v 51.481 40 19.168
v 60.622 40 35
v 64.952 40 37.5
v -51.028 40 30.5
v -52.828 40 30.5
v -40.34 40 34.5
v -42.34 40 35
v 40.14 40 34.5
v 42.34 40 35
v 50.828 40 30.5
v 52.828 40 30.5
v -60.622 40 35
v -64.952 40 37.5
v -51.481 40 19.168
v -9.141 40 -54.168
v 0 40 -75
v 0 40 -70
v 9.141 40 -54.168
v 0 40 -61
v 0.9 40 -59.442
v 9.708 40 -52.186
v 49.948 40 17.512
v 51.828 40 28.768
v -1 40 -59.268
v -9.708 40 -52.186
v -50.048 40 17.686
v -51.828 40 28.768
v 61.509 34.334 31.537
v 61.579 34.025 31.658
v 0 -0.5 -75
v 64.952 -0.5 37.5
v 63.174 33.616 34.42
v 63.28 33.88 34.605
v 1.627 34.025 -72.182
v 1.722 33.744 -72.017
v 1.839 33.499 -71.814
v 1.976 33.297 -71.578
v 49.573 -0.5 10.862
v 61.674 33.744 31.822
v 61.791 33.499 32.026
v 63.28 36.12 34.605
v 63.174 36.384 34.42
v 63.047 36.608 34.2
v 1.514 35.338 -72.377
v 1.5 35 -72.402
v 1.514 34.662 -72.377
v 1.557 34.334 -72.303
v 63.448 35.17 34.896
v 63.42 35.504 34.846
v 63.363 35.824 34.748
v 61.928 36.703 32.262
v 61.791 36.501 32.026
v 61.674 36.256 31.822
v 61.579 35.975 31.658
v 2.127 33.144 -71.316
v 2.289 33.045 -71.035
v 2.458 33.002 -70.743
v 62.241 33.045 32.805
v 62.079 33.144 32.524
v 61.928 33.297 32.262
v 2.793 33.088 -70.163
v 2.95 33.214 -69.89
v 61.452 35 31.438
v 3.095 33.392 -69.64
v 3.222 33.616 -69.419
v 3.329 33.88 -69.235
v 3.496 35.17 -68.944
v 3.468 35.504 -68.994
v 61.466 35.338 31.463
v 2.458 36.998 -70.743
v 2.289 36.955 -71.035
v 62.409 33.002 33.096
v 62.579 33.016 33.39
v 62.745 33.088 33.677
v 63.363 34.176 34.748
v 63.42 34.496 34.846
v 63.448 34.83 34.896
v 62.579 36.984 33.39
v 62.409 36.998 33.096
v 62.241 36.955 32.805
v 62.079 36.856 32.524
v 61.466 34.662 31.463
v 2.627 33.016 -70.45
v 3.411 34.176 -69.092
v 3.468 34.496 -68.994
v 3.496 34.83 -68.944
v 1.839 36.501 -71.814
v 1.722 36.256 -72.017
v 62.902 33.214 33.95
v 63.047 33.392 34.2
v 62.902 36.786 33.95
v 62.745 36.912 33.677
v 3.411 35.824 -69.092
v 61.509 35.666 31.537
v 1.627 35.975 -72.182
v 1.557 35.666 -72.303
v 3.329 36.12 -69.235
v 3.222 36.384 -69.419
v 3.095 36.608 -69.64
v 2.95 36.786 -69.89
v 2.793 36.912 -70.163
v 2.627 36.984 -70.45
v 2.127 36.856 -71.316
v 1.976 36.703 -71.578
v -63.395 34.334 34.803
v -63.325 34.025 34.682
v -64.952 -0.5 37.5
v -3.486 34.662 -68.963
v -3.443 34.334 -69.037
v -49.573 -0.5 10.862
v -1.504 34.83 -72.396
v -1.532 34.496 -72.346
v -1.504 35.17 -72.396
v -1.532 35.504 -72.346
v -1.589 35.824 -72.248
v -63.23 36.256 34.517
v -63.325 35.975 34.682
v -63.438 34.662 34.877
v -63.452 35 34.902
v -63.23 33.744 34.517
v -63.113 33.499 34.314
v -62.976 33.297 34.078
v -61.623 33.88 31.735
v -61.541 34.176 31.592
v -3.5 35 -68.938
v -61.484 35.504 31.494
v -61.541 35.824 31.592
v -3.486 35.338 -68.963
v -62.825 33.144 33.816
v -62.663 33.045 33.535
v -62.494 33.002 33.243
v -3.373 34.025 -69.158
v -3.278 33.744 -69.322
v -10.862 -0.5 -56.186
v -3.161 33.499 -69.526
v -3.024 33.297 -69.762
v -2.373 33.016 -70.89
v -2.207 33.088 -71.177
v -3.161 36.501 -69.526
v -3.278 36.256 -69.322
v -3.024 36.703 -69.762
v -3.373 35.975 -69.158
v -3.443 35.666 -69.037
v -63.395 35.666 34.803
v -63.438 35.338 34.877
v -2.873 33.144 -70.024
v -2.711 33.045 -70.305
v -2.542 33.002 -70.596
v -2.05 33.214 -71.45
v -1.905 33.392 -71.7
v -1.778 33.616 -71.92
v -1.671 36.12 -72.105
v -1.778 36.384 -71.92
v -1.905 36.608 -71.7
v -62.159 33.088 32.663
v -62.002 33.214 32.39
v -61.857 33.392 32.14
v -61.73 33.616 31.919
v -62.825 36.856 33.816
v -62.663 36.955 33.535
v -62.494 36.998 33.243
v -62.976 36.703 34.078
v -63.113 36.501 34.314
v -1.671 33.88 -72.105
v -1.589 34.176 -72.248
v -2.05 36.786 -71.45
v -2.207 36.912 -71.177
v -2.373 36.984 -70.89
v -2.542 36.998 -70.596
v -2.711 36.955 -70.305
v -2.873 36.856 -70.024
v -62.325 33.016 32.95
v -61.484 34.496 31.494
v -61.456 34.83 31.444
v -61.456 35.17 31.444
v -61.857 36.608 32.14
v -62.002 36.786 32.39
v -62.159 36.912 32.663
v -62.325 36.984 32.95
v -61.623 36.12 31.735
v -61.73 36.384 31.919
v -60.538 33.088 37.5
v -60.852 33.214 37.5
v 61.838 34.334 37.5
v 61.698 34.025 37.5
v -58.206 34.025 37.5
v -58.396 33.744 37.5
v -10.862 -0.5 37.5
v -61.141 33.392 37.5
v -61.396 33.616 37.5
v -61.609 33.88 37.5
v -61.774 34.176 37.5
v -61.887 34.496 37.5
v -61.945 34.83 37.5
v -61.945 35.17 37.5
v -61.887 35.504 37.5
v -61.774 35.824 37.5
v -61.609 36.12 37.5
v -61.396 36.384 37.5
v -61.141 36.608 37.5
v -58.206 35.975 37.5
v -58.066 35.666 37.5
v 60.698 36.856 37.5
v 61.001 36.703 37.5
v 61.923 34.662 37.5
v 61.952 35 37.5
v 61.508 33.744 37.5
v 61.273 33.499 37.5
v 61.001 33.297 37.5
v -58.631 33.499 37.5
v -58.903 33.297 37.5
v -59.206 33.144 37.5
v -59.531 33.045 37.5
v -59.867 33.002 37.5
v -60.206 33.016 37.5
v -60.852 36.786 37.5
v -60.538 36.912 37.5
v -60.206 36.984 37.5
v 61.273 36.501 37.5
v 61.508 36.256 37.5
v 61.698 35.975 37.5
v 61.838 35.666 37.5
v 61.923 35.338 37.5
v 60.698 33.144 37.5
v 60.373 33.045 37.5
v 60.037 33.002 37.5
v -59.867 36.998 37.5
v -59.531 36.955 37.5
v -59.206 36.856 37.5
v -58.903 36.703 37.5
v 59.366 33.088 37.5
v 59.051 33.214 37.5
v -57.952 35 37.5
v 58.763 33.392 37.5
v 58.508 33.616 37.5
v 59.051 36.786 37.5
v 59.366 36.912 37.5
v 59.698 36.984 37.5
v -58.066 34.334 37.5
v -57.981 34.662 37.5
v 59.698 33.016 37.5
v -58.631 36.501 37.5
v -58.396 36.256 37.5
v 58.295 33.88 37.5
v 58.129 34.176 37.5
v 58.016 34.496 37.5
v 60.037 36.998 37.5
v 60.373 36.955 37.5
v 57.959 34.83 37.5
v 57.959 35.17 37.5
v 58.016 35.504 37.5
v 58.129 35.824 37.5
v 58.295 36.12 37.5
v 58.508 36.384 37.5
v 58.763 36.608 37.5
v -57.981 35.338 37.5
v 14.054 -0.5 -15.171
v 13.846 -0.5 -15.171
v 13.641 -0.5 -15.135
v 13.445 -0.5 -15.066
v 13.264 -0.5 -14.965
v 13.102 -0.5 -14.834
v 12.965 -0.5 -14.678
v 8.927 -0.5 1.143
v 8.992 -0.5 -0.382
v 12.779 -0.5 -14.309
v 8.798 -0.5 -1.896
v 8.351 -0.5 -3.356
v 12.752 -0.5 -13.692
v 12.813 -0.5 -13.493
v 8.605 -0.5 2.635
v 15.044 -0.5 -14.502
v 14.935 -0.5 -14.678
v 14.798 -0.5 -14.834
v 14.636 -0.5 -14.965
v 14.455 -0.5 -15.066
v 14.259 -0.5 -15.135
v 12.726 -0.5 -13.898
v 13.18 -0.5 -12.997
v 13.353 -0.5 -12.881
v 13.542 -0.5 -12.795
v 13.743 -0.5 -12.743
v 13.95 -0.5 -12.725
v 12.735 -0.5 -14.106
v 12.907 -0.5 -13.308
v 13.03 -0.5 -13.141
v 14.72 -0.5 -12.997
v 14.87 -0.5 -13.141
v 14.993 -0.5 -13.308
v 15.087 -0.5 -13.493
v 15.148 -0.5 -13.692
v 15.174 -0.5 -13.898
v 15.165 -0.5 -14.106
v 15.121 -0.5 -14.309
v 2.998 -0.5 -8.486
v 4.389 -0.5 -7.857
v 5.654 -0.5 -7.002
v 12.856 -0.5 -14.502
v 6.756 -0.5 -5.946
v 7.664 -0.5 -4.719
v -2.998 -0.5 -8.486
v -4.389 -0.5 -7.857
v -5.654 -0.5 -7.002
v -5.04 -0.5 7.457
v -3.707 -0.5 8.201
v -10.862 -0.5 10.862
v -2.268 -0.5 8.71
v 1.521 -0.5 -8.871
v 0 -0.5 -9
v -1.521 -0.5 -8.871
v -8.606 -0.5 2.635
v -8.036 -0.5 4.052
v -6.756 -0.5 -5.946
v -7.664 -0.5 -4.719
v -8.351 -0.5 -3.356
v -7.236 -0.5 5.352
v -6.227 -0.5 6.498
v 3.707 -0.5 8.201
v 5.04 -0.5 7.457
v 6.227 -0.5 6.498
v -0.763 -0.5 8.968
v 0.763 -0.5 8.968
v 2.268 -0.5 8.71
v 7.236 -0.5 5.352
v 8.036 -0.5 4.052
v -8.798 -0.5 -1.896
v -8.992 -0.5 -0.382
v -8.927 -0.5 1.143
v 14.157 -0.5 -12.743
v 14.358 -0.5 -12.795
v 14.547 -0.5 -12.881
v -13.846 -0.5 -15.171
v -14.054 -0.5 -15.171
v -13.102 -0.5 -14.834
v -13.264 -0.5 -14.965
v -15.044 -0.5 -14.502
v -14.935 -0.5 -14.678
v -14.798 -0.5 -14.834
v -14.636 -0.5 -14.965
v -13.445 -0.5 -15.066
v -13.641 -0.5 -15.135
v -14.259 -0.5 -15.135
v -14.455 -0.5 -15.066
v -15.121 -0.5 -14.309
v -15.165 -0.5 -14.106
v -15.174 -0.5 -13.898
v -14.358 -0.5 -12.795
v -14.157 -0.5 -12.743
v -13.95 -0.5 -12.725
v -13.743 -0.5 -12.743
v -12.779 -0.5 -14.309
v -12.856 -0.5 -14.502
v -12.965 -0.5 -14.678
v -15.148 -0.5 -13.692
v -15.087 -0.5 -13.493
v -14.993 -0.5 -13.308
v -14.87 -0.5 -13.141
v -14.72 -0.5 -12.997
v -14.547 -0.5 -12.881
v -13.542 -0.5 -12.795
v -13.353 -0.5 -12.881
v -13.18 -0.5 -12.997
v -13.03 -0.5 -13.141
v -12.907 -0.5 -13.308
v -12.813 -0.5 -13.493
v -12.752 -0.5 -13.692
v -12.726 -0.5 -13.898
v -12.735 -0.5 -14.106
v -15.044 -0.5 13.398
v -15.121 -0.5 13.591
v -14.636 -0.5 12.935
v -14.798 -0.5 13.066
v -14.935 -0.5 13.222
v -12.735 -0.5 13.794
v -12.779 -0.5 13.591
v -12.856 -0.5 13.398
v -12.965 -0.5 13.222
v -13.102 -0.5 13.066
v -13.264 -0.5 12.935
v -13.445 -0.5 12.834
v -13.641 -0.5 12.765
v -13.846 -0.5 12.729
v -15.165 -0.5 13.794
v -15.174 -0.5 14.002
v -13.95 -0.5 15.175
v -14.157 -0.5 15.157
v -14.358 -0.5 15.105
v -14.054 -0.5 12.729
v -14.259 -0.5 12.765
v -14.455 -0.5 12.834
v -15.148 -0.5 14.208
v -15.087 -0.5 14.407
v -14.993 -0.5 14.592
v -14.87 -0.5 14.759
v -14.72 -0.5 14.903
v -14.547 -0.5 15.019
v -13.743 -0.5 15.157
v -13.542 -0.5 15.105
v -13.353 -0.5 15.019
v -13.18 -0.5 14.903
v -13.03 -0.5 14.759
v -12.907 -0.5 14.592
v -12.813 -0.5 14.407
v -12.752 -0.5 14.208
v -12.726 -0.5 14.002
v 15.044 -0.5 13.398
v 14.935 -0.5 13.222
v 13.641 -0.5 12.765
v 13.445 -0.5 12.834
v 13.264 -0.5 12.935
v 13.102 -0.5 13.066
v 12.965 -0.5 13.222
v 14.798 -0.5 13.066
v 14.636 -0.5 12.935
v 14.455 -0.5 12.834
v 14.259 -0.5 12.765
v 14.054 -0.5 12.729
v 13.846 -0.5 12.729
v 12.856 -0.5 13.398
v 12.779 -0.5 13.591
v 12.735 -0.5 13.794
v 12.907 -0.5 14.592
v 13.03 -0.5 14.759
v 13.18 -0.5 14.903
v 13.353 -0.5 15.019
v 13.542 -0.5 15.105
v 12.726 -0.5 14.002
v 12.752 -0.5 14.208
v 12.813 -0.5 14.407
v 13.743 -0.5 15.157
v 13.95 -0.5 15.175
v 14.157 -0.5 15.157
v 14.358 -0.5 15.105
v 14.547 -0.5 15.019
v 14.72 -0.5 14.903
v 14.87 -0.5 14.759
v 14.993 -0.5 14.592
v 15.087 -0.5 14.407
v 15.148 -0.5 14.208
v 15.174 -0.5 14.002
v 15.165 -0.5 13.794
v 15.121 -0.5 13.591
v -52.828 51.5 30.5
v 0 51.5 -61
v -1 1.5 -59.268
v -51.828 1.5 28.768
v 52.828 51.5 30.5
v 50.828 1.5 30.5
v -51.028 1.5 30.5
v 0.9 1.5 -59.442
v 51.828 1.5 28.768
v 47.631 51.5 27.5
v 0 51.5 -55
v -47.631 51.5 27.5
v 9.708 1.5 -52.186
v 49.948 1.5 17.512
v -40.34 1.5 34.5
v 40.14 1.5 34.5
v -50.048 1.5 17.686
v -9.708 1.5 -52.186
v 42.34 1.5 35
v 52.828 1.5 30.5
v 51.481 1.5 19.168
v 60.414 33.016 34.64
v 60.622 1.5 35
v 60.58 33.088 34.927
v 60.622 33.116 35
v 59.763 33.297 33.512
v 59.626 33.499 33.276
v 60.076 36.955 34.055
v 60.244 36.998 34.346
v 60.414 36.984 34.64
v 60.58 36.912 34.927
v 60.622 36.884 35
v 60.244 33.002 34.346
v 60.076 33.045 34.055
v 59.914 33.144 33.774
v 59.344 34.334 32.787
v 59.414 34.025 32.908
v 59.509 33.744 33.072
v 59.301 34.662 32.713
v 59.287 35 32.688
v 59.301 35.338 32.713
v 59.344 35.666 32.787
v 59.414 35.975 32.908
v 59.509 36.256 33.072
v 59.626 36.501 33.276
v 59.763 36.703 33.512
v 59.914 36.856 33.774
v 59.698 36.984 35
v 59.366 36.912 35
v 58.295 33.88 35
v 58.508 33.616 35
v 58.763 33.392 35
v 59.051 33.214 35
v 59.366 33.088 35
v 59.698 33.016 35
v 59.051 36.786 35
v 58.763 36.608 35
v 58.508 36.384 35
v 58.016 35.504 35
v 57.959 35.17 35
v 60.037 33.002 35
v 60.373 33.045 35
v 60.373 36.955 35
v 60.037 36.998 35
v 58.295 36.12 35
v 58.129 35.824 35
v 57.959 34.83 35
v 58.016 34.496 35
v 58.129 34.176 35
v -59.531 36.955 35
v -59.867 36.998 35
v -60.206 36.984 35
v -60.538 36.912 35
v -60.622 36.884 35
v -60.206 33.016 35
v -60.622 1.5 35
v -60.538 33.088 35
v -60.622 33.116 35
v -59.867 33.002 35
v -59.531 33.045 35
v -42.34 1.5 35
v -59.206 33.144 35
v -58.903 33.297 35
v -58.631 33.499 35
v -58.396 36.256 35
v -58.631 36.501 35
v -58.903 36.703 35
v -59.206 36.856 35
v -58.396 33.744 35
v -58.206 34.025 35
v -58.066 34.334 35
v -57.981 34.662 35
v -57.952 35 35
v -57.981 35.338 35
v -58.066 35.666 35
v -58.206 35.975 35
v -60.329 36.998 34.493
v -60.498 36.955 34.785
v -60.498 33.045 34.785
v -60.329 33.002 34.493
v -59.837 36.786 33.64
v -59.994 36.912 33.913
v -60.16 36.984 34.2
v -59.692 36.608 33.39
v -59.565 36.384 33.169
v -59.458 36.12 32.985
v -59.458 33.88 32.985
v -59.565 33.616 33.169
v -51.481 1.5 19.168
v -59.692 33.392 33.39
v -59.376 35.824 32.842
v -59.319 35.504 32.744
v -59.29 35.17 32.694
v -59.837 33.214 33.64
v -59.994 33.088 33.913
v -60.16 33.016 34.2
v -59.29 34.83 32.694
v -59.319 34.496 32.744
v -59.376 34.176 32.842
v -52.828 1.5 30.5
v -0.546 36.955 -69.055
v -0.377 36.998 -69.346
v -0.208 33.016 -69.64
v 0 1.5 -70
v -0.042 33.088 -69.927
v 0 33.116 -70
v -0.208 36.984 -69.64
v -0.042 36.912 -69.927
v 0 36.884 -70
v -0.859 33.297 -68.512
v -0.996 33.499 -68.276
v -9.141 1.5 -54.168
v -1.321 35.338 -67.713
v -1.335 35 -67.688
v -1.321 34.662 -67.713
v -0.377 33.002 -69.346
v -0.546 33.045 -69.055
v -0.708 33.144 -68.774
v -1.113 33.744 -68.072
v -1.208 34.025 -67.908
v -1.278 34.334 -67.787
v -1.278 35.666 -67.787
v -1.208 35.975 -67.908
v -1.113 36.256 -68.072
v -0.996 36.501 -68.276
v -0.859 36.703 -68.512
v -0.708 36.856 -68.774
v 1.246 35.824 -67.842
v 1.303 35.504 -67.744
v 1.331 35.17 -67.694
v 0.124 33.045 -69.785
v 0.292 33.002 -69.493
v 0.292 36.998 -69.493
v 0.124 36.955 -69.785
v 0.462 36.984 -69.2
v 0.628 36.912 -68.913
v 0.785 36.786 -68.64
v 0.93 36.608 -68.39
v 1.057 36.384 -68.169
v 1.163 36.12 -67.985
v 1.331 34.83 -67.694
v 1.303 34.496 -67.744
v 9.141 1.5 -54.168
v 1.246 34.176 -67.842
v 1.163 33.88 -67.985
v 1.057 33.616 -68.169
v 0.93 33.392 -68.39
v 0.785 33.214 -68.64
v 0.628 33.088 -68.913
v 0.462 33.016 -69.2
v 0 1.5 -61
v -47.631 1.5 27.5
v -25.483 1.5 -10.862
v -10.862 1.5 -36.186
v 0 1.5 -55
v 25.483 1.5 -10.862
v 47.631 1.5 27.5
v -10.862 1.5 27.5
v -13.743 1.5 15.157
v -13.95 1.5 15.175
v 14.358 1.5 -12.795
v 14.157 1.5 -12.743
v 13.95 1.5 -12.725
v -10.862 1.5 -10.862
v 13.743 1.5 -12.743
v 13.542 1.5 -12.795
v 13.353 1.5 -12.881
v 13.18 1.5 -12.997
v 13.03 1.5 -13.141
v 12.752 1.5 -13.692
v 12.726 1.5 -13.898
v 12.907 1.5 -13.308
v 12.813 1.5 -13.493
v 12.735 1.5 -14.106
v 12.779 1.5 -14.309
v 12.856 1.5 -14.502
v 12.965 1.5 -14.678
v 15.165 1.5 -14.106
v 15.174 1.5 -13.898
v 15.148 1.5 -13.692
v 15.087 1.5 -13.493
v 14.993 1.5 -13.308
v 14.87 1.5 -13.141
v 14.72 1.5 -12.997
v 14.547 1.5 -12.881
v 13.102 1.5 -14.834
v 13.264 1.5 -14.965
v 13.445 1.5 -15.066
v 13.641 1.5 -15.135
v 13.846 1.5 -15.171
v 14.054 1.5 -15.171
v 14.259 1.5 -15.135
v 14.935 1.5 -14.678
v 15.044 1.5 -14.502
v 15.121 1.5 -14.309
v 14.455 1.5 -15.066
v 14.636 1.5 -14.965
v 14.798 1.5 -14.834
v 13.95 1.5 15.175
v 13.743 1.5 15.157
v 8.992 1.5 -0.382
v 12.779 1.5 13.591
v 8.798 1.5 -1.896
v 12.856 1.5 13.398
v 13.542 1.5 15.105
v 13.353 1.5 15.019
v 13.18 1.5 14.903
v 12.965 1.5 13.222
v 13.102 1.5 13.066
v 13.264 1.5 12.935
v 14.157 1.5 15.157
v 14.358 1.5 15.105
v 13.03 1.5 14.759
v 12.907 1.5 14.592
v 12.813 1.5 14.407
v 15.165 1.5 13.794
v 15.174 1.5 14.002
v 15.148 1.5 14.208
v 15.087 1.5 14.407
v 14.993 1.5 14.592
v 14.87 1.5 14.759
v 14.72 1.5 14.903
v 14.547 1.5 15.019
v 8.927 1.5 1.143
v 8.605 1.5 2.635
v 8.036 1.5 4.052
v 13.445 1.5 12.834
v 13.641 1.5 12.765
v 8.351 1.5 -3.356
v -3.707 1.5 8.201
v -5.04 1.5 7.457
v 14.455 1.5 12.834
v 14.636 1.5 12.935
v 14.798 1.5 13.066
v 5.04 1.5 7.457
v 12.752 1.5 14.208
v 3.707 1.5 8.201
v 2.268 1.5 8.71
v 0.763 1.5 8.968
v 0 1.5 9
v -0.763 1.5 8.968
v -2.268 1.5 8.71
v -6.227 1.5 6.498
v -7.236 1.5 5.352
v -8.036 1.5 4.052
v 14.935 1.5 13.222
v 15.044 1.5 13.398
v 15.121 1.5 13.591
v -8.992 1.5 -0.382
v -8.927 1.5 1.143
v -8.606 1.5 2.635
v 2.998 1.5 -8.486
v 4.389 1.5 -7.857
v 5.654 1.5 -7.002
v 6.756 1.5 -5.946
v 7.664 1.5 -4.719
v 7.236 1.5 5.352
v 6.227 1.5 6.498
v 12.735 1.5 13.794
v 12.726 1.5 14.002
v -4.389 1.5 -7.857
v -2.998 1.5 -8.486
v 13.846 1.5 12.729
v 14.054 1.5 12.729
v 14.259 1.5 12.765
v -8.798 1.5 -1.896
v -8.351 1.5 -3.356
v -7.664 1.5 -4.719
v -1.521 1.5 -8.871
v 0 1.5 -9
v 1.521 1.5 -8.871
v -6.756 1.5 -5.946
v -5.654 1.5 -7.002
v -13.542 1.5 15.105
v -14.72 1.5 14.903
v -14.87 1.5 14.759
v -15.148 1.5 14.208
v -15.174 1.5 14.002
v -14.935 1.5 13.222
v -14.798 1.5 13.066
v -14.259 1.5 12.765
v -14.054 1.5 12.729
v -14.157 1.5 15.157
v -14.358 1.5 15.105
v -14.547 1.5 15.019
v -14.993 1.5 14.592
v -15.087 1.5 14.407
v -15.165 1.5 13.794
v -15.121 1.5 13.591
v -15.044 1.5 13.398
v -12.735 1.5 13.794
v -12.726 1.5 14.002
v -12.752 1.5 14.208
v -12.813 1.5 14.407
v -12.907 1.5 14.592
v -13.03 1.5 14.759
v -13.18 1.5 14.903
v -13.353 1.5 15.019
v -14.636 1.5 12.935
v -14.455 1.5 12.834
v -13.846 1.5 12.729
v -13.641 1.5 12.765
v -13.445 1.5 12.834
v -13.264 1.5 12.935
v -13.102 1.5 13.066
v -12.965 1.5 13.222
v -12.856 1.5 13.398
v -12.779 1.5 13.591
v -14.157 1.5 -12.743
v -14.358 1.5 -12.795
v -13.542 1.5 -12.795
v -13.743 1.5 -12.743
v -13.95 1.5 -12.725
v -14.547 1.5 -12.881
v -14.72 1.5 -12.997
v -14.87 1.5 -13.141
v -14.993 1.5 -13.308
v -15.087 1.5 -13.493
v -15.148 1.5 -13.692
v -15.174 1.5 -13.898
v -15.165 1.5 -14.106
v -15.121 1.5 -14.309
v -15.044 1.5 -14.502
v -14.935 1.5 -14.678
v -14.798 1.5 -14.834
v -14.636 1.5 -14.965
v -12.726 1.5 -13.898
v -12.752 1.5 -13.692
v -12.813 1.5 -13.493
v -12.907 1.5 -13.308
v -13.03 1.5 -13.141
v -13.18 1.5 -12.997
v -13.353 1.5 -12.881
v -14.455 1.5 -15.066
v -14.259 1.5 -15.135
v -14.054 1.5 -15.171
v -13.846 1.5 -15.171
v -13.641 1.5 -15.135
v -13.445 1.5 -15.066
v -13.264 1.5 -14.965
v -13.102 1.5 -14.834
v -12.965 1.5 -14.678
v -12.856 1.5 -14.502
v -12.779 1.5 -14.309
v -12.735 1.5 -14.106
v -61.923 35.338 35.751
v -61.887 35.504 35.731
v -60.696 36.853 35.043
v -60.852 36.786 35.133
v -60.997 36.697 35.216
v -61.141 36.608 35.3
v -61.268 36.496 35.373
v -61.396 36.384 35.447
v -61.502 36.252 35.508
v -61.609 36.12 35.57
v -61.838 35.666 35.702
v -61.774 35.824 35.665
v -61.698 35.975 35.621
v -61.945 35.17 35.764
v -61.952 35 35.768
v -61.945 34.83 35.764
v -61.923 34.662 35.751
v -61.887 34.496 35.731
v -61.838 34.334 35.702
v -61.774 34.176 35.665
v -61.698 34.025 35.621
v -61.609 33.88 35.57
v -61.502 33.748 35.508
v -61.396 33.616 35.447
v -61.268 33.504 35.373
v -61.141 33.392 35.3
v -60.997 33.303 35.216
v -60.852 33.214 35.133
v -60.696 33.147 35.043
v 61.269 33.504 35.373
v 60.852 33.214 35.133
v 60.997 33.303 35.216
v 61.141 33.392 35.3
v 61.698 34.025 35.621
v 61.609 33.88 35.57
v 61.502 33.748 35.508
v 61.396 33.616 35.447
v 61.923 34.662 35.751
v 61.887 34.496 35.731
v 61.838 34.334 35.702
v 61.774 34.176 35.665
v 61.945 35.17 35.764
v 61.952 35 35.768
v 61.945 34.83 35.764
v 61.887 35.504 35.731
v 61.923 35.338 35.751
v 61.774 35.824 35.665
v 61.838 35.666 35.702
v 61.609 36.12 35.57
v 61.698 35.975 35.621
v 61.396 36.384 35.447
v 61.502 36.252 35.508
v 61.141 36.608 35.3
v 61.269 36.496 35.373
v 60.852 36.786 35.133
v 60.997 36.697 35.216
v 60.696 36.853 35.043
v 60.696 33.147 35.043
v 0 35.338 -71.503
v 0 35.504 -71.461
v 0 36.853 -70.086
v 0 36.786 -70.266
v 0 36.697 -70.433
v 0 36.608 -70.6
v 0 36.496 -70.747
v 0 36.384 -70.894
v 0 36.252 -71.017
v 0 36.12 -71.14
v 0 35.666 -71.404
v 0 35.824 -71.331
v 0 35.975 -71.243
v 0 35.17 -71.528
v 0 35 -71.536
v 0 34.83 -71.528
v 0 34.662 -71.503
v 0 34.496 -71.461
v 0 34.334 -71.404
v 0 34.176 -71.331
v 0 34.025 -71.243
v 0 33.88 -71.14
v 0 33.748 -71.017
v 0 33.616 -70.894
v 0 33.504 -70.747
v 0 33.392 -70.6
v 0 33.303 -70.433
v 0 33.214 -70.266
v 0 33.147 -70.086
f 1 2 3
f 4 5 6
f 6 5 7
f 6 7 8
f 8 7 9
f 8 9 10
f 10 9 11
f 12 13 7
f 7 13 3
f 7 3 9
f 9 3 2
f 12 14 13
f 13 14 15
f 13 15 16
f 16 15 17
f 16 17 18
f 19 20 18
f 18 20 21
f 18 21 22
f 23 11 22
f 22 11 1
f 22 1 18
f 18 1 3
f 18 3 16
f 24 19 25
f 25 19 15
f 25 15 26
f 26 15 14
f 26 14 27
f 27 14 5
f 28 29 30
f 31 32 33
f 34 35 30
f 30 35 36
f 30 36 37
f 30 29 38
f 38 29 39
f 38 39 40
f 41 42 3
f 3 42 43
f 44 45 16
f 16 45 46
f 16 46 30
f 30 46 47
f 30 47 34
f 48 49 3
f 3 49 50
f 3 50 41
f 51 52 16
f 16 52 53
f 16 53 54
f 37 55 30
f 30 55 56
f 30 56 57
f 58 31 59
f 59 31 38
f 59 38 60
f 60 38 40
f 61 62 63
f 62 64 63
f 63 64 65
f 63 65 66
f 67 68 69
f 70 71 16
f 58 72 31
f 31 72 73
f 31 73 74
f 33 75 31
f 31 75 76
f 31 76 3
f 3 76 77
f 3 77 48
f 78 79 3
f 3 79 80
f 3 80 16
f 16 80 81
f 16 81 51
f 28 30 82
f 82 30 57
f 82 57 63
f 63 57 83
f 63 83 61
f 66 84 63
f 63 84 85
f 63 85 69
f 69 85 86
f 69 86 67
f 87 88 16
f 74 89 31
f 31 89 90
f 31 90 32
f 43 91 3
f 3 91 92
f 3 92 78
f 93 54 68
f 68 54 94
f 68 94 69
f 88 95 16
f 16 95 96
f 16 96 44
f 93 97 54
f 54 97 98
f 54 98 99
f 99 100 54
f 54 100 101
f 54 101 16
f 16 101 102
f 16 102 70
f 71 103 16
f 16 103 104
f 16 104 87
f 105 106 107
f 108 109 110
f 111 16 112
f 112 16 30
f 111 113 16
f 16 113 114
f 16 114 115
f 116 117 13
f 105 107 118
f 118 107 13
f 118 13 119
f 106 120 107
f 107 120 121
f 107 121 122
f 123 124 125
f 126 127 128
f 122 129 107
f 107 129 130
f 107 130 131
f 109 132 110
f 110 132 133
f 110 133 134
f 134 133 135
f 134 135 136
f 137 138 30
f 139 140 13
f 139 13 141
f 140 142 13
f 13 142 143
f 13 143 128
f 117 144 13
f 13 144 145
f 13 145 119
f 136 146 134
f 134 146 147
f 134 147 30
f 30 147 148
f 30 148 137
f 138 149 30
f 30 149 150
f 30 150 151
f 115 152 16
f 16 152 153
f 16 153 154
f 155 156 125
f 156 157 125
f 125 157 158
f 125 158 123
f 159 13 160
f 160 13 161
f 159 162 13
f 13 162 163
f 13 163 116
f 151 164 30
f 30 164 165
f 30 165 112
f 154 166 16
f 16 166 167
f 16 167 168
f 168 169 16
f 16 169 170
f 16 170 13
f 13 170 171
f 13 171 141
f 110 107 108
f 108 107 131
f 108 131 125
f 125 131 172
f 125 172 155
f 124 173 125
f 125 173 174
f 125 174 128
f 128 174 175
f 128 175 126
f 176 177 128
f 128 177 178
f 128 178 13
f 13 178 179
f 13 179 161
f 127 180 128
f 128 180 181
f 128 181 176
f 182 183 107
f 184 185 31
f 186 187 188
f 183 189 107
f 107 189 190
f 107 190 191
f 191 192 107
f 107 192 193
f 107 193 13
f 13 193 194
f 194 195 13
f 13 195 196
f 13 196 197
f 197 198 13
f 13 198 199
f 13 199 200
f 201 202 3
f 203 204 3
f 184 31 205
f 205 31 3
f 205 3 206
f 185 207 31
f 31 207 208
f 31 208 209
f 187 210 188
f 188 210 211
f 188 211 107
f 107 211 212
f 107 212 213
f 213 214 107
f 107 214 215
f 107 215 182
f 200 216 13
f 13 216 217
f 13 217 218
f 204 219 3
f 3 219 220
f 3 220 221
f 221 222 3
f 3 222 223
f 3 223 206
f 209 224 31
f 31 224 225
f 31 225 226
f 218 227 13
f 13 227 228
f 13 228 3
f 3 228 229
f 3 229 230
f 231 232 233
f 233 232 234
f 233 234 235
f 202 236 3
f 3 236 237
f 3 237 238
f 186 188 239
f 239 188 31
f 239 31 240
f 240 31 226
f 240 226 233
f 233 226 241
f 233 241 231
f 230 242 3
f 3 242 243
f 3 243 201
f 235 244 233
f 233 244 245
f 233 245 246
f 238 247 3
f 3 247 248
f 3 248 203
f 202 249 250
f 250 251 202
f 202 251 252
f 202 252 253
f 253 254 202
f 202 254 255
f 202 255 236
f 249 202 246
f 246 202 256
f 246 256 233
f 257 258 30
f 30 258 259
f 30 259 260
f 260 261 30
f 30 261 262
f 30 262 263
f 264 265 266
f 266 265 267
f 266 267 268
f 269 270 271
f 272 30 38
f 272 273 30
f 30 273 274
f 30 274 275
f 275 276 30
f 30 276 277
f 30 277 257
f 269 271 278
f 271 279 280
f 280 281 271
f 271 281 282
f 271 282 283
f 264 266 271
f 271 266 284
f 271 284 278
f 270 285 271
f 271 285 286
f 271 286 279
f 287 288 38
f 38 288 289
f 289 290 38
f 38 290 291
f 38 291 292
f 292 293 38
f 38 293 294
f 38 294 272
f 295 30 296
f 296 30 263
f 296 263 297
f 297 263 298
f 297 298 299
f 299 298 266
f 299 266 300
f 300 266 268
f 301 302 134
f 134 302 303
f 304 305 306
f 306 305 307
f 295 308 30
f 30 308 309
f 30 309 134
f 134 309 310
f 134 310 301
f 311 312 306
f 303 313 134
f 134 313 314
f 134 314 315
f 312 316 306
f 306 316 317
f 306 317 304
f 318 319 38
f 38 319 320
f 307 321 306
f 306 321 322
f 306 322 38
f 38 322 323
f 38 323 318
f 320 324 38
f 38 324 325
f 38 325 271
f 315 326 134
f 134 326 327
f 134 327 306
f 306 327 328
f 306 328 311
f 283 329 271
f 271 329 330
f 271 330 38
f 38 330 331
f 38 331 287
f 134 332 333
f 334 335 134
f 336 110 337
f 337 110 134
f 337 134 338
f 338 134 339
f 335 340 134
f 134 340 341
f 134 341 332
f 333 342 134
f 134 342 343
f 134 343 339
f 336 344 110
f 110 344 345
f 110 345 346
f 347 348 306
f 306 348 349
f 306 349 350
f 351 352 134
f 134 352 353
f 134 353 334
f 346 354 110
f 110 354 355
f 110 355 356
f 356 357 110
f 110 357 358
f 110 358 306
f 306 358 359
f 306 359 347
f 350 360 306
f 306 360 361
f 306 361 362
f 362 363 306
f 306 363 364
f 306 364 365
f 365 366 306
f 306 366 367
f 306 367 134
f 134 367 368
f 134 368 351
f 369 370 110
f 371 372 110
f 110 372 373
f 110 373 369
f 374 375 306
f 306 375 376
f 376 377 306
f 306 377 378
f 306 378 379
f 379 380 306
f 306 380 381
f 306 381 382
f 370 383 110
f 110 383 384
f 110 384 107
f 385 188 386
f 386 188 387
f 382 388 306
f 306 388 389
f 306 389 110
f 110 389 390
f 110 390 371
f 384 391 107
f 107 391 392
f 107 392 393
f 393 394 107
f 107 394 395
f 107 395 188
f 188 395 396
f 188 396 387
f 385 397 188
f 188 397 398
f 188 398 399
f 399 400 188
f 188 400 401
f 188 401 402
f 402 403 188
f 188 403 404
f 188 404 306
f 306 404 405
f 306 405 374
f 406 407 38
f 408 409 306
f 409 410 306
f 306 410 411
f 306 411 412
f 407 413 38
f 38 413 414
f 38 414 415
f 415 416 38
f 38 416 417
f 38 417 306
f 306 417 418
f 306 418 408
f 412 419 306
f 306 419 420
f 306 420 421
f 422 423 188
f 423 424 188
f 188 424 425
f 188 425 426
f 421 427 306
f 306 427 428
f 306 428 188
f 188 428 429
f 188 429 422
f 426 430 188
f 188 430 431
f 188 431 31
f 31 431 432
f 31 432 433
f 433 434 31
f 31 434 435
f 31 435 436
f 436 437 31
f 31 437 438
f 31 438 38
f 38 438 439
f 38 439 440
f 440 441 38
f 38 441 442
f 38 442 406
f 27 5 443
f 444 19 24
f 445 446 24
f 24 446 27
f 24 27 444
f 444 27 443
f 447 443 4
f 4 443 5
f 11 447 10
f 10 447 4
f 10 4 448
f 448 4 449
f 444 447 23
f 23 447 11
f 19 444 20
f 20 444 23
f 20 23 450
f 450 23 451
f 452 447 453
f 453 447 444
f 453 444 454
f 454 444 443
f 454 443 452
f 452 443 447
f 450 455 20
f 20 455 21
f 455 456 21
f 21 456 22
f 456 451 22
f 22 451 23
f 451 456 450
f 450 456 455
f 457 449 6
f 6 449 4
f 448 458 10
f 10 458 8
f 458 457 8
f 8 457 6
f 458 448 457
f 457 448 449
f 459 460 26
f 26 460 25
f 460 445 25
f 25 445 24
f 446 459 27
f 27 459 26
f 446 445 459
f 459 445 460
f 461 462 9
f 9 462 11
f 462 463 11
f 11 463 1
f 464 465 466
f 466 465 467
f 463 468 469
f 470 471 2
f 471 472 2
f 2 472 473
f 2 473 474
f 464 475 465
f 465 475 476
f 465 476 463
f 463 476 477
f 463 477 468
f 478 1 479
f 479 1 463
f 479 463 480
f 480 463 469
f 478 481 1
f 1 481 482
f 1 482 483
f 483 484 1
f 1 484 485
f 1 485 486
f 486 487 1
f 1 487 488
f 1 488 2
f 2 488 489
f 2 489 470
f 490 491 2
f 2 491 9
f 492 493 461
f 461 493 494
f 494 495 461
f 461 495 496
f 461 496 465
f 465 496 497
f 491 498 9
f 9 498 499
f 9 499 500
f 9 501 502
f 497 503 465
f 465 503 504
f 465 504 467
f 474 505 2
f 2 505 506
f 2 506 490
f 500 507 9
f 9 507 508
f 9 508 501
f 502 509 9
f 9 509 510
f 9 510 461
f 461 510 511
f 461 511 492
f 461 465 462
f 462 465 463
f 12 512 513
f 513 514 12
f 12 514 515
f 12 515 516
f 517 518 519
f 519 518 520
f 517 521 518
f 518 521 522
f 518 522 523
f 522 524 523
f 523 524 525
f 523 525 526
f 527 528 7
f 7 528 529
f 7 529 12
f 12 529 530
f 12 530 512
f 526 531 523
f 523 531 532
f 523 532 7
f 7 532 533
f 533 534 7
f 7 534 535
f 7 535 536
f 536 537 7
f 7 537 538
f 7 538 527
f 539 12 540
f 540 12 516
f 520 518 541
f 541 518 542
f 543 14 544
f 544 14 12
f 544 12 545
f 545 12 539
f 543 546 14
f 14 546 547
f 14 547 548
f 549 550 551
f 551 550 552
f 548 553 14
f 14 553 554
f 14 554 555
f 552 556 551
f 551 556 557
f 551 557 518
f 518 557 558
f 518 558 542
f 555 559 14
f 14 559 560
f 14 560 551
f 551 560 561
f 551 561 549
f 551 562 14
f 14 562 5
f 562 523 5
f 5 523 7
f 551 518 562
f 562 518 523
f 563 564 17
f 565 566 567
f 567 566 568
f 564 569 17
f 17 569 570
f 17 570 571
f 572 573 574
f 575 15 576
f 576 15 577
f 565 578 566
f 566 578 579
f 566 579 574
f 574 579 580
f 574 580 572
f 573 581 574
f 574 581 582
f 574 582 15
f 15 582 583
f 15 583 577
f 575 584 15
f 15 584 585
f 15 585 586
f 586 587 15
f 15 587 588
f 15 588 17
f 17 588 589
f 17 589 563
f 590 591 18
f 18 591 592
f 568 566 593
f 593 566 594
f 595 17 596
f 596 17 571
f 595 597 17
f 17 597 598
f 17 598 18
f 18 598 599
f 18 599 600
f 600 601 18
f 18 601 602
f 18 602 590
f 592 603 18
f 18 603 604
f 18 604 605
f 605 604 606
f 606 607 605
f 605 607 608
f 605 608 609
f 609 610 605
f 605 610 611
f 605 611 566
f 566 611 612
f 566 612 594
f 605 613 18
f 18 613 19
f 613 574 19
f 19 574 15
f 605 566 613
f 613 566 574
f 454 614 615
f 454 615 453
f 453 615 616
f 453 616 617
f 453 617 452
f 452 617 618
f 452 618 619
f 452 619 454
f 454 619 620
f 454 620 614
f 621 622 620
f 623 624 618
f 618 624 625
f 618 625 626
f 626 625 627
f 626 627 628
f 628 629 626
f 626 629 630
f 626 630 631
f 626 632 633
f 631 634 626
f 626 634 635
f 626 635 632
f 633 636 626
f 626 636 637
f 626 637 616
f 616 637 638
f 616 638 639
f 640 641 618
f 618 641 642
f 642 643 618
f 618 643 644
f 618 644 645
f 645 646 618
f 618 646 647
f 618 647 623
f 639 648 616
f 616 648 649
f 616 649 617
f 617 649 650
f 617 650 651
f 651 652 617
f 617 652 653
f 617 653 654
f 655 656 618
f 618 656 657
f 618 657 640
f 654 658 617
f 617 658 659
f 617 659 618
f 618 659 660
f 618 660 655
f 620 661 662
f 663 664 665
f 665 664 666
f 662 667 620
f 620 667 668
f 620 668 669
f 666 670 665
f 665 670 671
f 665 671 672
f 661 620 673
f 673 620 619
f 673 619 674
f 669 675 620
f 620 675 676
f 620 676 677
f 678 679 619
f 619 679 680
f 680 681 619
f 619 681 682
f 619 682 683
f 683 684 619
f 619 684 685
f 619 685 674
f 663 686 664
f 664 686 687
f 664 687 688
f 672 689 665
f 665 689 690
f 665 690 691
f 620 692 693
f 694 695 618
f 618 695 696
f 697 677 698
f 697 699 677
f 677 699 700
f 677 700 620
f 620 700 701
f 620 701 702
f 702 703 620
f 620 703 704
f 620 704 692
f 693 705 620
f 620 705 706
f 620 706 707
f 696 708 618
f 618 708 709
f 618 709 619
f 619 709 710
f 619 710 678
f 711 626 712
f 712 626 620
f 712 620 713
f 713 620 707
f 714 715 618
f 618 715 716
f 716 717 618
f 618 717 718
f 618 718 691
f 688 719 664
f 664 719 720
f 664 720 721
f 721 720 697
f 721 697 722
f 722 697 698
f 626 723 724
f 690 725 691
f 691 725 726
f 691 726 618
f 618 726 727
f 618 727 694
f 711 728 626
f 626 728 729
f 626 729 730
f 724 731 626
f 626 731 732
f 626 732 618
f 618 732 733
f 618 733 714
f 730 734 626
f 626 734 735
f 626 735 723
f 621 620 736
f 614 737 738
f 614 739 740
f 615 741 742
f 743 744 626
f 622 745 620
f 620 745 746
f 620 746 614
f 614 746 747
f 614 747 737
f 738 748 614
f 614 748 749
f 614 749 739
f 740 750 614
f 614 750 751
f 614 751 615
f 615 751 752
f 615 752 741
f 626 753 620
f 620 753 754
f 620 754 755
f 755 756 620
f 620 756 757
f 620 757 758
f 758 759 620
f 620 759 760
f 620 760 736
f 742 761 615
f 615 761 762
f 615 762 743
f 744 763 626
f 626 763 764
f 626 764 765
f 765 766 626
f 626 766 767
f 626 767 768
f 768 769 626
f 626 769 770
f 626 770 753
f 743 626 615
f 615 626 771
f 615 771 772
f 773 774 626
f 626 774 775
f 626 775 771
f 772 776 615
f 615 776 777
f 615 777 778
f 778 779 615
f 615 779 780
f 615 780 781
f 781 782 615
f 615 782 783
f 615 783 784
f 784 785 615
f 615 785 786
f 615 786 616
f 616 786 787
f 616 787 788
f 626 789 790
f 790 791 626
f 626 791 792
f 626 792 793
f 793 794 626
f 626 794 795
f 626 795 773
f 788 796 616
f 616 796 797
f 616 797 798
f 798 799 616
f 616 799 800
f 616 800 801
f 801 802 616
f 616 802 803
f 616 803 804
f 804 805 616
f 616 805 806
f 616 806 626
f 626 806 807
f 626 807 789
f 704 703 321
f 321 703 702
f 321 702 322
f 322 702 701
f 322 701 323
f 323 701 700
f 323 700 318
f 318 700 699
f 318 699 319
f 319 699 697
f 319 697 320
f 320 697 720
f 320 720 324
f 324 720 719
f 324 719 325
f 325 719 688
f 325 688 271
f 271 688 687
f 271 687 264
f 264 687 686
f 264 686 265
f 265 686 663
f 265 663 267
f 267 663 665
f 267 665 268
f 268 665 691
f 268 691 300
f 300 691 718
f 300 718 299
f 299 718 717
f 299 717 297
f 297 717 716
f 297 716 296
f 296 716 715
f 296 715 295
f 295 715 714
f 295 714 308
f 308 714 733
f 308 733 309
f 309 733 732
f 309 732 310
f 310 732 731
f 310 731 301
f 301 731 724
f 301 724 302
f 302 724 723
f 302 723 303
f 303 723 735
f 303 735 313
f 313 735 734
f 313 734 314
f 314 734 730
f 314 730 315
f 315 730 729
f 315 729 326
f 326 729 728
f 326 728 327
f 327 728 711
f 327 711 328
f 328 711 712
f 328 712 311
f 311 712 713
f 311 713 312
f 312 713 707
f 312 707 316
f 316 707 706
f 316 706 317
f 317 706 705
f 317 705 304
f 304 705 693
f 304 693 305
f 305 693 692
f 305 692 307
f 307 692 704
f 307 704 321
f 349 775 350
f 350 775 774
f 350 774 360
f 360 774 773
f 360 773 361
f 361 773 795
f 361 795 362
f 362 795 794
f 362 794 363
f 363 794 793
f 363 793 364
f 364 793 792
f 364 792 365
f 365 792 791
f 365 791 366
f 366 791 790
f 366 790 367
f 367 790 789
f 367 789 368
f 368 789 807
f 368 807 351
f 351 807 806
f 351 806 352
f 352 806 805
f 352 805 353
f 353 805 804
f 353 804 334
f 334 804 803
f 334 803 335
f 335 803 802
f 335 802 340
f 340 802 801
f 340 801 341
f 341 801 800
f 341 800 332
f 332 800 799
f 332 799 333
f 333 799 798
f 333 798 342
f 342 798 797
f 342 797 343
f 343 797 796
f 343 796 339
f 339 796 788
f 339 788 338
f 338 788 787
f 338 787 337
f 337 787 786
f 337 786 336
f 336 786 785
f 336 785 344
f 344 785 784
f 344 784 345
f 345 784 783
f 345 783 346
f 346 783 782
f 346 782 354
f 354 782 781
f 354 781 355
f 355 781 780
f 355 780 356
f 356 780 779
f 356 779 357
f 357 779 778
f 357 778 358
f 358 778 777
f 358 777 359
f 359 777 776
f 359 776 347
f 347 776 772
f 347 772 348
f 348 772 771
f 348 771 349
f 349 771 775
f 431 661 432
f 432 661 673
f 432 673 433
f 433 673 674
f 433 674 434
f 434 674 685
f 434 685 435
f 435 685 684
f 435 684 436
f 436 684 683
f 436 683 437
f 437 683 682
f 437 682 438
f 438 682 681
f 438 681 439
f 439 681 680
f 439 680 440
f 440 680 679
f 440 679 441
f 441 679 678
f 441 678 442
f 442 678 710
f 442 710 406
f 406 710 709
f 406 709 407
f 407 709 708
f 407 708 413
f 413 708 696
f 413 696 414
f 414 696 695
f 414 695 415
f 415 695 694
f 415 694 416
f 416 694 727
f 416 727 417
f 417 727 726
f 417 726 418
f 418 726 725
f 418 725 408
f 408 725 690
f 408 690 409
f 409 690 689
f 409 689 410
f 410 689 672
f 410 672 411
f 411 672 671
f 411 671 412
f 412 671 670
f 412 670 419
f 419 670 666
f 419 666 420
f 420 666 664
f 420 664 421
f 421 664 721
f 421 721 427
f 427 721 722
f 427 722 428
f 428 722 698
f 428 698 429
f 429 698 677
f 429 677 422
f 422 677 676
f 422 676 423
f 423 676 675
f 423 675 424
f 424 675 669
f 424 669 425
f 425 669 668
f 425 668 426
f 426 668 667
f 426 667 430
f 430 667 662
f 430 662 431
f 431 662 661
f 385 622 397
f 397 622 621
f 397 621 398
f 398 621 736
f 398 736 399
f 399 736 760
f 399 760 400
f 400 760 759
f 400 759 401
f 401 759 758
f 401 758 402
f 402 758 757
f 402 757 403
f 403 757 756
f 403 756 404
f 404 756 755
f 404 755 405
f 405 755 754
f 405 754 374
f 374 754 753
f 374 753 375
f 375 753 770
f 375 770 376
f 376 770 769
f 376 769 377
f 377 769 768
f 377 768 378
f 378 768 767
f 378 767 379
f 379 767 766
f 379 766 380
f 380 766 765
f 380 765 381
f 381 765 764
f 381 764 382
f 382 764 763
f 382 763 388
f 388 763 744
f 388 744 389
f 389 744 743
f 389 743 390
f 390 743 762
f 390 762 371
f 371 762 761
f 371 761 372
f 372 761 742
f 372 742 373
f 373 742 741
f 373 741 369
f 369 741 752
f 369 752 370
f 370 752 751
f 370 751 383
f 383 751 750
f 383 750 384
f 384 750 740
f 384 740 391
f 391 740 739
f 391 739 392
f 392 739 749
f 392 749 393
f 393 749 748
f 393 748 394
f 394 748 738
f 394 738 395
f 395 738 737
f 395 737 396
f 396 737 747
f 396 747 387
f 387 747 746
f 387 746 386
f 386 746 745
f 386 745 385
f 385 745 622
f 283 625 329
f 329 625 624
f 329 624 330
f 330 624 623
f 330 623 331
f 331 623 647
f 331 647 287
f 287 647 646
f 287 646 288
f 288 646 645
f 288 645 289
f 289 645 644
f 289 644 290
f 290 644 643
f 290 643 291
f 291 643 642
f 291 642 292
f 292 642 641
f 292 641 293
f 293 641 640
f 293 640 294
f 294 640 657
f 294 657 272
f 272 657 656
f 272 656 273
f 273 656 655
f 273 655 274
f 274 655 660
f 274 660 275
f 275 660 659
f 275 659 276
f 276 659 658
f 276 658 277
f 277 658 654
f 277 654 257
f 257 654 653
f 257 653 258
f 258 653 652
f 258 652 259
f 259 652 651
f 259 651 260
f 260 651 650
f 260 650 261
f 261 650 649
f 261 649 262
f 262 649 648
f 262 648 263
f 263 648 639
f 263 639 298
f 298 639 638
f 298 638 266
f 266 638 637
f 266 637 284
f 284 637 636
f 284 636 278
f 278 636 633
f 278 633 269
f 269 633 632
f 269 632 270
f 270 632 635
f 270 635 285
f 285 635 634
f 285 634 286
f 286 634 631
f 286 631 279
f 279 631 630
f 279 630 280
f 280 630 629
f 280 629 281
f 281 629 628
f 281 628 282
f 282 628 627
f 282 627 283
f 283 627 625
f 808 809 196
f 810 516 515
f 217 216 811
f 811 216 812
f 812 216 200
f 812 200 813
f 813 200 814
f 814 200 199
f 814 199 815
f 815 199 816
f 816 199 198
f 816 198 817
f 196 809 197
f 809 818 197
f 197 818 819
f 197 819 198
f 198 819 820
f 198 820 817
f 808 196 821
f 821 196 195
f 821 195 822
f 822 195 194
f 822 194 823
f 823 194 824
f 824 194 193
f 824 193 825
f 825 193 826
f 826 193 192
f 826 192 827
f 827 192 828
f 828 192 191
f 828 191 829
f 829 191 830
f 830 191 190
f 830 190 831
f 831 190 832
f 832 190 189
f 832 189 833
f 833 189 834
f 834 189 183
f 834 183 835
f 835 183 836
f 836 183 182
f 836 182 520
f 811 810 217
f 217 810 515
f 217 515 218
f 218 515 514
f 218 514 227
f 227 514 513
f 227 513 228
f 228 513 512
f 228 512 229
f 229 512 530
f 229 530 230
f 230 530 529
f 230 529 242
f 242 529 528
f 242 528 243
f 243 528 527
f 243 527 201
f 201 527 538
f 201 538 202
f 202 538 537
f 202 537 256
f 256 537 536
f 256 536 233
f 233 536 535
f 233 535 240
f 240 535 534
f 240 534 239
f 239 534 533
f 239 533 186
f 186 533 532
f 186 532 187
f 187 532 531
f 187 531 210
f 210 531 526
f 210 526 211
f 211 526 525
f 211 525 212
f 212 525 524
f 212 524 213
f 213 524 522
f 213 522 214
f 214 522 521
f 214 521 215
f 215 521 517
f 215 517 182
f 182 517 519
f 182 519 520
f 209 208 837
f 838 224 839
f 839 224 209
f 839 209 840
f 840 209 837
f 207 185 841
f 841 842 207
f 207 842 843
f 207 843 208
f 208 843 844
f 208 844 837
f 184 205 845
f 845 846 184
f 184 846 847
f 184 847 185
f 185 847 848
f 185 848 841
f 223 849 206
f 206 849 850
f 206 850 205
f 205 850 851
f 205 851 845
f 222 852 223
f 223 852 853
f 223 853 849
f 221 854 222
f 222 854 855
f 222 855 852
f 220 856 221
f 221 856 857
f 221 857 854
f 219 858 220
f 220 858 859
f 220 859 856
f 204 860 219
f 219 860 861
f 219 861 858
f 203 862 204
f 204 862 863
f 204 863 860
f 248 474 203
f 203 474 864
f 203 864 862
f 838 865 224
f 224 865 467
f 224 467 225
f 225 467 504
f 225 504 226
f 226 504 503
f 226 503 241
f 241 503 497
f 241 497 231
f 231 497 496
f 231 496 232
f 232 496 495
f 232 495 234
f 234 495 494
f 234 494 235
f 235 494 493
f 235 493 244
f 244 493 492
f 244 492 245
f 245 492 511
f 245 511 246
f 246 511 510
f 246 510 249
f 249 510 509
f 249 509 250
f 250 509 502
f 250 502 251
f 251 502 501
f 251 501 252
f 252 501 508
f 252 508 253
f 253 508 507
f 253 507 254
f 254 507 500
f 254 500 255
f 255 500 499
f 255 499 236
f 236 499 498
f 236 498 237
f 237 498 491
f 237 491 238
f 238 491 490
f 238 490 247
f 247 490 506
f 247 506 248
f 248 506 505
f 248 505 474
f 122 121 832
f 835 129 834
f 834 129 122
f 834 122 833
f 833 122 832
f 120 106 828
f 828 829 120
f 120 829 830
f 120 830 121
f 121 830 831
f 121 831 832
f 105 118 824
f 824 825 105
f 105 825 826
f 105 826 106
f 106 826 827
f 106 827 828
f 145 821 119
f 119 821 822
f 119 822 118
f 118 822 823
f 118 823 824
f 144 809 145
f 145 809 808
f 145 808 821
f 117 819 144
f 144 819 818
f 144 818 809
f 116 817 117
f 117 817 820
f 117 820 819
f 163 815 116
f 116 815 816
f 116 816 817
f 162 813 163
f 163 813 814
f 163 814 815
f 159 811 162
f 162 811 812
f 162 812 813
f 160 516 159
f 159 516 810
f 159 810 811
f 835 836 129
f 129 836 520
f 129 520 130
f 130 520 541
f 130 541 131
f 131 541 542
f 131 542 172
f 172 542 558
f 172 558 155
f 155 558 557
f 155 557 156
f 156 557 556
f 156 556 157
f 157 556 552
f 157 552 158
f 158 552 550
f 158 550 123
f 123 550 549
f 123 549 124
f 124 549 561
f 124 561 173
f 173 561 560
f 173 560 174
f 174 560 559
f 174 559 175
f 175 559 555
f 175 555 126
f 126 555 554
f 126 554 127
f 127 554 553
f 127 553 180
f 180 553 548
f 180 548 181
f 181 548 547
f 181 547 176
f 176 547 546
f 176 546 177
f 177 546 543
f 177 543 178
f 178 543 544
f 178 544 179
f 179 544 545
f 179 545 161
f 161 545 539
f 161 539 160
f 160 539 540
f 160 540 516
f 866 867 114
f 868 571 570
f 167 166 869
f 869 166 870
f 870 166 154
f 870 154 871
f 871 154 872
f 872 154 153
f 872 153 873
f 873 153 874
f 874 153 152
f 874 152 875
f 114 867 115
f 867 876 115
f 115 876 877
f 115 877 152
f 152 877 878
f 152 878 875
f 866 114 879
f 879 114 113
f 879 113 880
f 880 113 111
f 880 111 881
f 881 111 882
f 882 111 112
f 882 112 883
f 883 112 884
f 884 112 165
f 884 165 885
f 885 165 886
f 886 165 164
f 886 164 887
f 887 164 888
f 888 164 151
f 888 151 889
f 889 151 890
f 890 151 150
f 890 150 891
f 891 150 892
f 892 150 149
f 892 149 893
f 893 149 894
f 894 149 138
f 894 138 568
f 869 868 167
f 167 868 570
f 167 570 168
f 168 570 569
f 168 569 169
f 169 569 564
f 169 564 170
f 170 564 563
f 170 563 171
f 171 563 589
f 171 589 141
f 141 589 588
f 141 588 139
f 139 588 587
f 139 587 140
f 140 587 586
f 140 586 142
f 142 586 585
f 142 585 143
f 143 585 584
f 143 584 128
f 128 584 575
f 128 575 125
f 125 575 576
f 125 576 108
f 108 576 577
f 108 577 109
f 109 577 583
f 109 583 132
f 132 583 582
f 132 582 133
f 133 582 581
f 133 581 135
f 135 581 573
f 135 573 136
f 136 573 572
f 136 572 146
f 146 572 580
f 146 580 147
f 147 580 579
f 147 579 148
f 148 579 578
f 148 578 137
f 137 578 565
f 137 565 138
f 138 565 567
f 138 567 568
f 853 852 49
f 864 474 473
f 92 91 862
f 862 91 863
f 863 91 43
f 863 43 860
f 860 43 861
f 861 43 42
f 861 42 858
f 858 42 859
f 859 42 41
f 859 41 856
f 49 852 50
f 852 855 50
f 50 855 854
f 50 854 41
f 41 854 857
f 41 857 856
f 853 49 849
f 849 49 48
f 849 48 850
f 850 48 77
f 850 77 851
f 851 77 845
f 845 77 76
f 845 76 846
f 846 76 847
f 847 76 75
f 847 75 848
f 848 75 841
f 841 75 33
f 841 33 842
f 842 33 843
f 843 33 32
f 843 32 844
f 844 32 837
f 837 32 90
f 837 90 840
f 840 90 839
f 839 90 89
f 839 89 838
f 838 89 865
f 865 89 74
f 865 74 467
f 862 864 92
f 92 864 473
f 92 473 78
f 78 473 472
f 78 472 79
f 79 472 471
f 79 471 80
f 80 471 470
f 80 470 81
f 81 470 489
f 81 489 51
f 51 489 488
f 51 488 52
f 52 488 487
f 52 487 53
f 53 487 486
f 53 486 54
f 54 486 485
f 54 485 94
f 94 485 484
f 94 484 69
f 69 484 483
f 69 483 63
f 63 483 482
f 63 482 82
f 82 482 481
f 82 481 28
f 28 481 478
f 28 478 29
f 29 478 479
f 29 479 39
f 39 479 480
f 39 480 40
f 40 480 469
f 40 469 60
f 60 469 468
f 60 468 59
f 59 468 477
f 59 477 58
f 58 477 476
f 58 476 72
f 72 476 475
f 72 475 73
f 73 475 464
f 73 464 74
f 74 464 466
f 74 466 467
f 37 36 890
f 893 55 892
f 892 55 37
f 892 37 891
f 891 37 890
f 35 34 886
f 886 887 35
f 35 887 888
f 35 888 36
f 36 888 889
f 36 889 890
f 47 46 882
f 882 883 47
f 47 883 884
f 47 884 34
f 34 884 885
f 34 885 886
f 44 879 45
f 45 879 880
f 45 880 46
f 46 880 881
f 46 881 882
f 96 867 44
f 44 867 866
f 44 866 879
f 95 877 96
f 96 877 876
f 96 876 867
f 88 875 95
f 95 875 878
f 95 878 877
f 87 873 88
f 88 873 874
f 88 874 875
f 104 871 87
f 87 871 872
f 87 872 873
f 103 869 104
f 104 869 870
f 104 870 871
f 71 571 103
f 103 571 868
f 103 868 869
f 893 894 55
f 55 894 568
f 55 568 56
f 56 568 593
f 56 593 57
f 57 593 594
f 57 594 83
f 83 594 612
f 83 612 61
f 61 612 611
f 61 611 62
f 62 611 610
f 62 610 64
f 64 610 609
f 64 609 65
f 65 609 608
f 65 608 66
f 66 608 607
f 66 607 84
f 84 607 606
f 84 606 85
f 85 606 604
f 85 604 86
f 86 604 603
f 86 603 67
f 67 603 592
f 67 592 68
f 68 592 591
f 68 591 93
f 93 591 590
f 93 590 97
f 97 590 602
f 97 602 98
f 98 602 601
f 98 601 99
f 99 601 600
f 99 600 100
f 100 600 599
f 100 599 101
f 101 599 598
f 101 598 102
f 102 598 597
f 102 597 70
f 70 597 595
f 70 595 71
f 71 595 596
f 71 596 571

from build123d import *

# Parameters (mm, degrees)
BOSS_EXTRUDE1_DEPTH            = 40.5
BOSS_EXTRUDE2_DEPTH            = 11.5
CUT_EXTRUDE1_DEPTH             = 38.5
CUT_EXTRUDE2_DEPTH             = 38.5
CUT_EXTRUDE3_DEPTH             = 38.5
CUT_EXTRUDE4_DEPTH             = 38.5
CUT_EXTRUDE5_DEPTH             = 38.5
CUT_EXTRUDE6_DEPTH             = 38.5
CUT_EXTRUDE7_DEPTH             = 50
F_18_0_18_DIAMETER_HOLE1_D     = 18
F_18_0_18_DIAMETER_HOLE1_DEPTH = 52
F_2_45_2_45_DIAMETER_HOLE1_D   = 2.45
F_4_0_4_DIAMETER_HOLE1_D       = 4
F_4_0_4_DIAMETER_HOLE1_DEPTH   = 3
F_4_0_4_DIAMETER_HOLE2_D       = 4
F_4_0_4_DIAMETER_HOLE2_DEPTH   = 3
F_4_0_4_DIAMETER_HOLE3_D       = 4
F_4_0_4_DIAMETER_HOLE3_DEPTH   = 3


with BuildPart() as part:
    # Sketch1 → Boss-Extrude1 (new body)
    with BuildSketch(Plane.XZ.offset(0.5)):
        Polygon((64.951905284, 37.5), (-64.951905284, 37.5), (0, -75), align=None)
    extrude(amount=-BOSS_EXTRUDE1_DEPTH)

    # Sketch4 → Boss-Extrude2 (add)
    with BuildSketch(Plane(origin=(0, 40, 0), x_dir=(-1, 0, 0), z_dir=(0, 1, 0))):
        Polygon((0, -61), (-52.827549631, 30.5), (52.827549631, 30.5), align=None)
    extrude(amount=BOSS_EXTRUDE2_DEPTH)

    # Sketch2 → Cut-Extrude1 (cut)
    with BuildSketch(Plane(origin=(0, 40, 0), x_dir=(-1, 0, 0), z_dir=(0, 1, 0))):
        Polygon((-0.899647383, -59.441765024), (-51.827549631, 28.767949192), (-49.94764189, 17.511853471), (-9.707758354, -52.185669302), align=None)
    extrude(amount=-CUT_EXTRUDE1_DEPTH, mode=Mode.SUBTRACT)

    # Sketch3 → Cut-Extrude2 (cut)
    with BuildSketch(Plane(origin=(0, 40, 0), x_dir=(-1, 0, 0), z_dir=(0, 1, 0))):
        Polygon((-50.827549631, 30.5), (51.028254843, 30.5), (40.340234991, 34.5), (-40.139530918, 34.5), align=None)
    extrude(amount=-CUT_EXTRUDE2_DEPTH, mode=Mode.SUBTRACT)

    # Sketch5 → Cut-Extrude3 (cut)
    with BuildSketch(Plane(origin=(0, 40, 0), x_dir=(-1, 0, 0), z_dir=(0, 1, 0))):
        Polygon((50.047994507, 17.685669302), (51.827549631, 28.767949192), (1, -59.267949192), (9.707758354, -52.185669302), align=None)
    extrude(amount=-CUT_EXTRUDE3_DEPTH, mode=Mode.SUBTRACT)

    # Sketch6 → Cut-Extrude4 (cut)
    with BuildSketch(Plane(origin=(0, 40, 0), x_dir=(-1, 0, 0), z_dir=(0, 1, 0))):
        Polygon((-42.340236152, 35), (-60.621778265, 35), (-51.481007209, 19.16772011), (-52.827549631, 30.5), align=None)
    extrude(amount=-CUT_EXTRUDE4_DEPTH, mode=Mode.SUBTRACT)

    # Sketch7 → Cut-Extrude5 (cut)
    with BuildSketch(Plane(origin=(0, 40, 0), x_dir=(-1, 0, 0), z_dir=(0, 1, 0))):
        Polygon((60.621778265, 35), (51.481007209, 19.16772011), (52.827549631, 30.5), (42.340234991, 35), align=None)
    extrude(amount=-CUT_EXTRUDE5_DEPTH, mode=Mode.SUBTRACT)

    # Sketch8 → Cut-Extrude6 (cut)
    with BuildSketch(Plane(origin=(0, 40, 0), x_dir=(-1, 0, 0), z_dir=(0, 1, 0))):
        Polygon((0, -70), (-9.140771056, -54.16772011), (0, -61), (9.140771056, -54.16772011), align=None)
    extrude(amount=-CUT_EXTRUDE6_DEPTH, mode=Mode.SUBTRACT)

    # Sketch9 → Cut-Extrude7 (cut)
    with BuildSketch(Plane(origin=(0, 51.5, 0), x_dir=(-1, 0, 0), z_dir=(0, 1, 0))):
        Polygon((47.631397208, 27.5), (-47.631397208, 27.5), (0, -55), align=None)
    extrude(amount=-CUT_EXTRUDE7_DEPTH, mode=Mode.SUBTRACT)

    # Ø18.0 (18) Diameter Hole1
    with Locations(Plane(origin=(0, -0.5, 0), x_dir=(-1, 0, 0), z_dir=(0, -1, 0))):
        with Locations((0, 0)):
            Hole(F_18_0_18_DIAMETER_HOLE1_D / 2, depth=F_18_0_18_DIAMETER_HOLE1_DEPTH)

    # Ø2.45 (2.45) Diameter Hole1 (through all)
    with Locations(Plane(origin=(0, 1.5, 0), x_dir=(1, 0, 0), z_dir=(0, 1, 0))):
        with Locations((13.95, 13.95), (-13.95, -13.95), (13.95, -13.95), (-13.95, 13.95)):
            Hole(F_2_45_2_45_DIAMETER_HOLE1_D / 2)

    # Ø4.0 (4) Diameter Hole1
    with Locations(Plane.XY.offset(37.5)):
        with Locations((59.951905284, 35), (-59.951905284, 35)):
            Hole(F_4_0_4_DIAMETER_HOLE1_D / 2, depth=F_4_0_4_DIAMETER_HOLE1_DEPTH)

    # Ø4.0 (4) Diameter Hole2
    with Locations(Plane(origin=(-32.475952642, 0, -18.75), x_dir=(-0.5000000000000003, 0, 0.8660254037844385), z_dir=(-0.8660254037844385, 0, -0.5000000000000003))):
        with Locations((-59.951905284, 35), (59.951905284, 35)):
            Hole(F_4_0_4_DIAMETER_HOLE2_D / 2, depth=F_4_0_4_DIAMETER_HOLE2_DEPTH)

    # Ø4.0 (4) Diameter Hole3
    with Locations(Plane(origin=(32.475952642, 0, -18.75), x_dir=(-0.499999999999999, 0, -0.8660254037844394), z_dir=(0.8660254037844394, 0, -0.499999999999999))):
        with Locations((59.951905284, 35), (-59.951905284, 35)):
            Hole(F_4_0_4_DIAMETER_HOLE3_D / 2, depth=F_4_0_4_DIAMETER_HOLE3_DEPTH)


solid = part.part
